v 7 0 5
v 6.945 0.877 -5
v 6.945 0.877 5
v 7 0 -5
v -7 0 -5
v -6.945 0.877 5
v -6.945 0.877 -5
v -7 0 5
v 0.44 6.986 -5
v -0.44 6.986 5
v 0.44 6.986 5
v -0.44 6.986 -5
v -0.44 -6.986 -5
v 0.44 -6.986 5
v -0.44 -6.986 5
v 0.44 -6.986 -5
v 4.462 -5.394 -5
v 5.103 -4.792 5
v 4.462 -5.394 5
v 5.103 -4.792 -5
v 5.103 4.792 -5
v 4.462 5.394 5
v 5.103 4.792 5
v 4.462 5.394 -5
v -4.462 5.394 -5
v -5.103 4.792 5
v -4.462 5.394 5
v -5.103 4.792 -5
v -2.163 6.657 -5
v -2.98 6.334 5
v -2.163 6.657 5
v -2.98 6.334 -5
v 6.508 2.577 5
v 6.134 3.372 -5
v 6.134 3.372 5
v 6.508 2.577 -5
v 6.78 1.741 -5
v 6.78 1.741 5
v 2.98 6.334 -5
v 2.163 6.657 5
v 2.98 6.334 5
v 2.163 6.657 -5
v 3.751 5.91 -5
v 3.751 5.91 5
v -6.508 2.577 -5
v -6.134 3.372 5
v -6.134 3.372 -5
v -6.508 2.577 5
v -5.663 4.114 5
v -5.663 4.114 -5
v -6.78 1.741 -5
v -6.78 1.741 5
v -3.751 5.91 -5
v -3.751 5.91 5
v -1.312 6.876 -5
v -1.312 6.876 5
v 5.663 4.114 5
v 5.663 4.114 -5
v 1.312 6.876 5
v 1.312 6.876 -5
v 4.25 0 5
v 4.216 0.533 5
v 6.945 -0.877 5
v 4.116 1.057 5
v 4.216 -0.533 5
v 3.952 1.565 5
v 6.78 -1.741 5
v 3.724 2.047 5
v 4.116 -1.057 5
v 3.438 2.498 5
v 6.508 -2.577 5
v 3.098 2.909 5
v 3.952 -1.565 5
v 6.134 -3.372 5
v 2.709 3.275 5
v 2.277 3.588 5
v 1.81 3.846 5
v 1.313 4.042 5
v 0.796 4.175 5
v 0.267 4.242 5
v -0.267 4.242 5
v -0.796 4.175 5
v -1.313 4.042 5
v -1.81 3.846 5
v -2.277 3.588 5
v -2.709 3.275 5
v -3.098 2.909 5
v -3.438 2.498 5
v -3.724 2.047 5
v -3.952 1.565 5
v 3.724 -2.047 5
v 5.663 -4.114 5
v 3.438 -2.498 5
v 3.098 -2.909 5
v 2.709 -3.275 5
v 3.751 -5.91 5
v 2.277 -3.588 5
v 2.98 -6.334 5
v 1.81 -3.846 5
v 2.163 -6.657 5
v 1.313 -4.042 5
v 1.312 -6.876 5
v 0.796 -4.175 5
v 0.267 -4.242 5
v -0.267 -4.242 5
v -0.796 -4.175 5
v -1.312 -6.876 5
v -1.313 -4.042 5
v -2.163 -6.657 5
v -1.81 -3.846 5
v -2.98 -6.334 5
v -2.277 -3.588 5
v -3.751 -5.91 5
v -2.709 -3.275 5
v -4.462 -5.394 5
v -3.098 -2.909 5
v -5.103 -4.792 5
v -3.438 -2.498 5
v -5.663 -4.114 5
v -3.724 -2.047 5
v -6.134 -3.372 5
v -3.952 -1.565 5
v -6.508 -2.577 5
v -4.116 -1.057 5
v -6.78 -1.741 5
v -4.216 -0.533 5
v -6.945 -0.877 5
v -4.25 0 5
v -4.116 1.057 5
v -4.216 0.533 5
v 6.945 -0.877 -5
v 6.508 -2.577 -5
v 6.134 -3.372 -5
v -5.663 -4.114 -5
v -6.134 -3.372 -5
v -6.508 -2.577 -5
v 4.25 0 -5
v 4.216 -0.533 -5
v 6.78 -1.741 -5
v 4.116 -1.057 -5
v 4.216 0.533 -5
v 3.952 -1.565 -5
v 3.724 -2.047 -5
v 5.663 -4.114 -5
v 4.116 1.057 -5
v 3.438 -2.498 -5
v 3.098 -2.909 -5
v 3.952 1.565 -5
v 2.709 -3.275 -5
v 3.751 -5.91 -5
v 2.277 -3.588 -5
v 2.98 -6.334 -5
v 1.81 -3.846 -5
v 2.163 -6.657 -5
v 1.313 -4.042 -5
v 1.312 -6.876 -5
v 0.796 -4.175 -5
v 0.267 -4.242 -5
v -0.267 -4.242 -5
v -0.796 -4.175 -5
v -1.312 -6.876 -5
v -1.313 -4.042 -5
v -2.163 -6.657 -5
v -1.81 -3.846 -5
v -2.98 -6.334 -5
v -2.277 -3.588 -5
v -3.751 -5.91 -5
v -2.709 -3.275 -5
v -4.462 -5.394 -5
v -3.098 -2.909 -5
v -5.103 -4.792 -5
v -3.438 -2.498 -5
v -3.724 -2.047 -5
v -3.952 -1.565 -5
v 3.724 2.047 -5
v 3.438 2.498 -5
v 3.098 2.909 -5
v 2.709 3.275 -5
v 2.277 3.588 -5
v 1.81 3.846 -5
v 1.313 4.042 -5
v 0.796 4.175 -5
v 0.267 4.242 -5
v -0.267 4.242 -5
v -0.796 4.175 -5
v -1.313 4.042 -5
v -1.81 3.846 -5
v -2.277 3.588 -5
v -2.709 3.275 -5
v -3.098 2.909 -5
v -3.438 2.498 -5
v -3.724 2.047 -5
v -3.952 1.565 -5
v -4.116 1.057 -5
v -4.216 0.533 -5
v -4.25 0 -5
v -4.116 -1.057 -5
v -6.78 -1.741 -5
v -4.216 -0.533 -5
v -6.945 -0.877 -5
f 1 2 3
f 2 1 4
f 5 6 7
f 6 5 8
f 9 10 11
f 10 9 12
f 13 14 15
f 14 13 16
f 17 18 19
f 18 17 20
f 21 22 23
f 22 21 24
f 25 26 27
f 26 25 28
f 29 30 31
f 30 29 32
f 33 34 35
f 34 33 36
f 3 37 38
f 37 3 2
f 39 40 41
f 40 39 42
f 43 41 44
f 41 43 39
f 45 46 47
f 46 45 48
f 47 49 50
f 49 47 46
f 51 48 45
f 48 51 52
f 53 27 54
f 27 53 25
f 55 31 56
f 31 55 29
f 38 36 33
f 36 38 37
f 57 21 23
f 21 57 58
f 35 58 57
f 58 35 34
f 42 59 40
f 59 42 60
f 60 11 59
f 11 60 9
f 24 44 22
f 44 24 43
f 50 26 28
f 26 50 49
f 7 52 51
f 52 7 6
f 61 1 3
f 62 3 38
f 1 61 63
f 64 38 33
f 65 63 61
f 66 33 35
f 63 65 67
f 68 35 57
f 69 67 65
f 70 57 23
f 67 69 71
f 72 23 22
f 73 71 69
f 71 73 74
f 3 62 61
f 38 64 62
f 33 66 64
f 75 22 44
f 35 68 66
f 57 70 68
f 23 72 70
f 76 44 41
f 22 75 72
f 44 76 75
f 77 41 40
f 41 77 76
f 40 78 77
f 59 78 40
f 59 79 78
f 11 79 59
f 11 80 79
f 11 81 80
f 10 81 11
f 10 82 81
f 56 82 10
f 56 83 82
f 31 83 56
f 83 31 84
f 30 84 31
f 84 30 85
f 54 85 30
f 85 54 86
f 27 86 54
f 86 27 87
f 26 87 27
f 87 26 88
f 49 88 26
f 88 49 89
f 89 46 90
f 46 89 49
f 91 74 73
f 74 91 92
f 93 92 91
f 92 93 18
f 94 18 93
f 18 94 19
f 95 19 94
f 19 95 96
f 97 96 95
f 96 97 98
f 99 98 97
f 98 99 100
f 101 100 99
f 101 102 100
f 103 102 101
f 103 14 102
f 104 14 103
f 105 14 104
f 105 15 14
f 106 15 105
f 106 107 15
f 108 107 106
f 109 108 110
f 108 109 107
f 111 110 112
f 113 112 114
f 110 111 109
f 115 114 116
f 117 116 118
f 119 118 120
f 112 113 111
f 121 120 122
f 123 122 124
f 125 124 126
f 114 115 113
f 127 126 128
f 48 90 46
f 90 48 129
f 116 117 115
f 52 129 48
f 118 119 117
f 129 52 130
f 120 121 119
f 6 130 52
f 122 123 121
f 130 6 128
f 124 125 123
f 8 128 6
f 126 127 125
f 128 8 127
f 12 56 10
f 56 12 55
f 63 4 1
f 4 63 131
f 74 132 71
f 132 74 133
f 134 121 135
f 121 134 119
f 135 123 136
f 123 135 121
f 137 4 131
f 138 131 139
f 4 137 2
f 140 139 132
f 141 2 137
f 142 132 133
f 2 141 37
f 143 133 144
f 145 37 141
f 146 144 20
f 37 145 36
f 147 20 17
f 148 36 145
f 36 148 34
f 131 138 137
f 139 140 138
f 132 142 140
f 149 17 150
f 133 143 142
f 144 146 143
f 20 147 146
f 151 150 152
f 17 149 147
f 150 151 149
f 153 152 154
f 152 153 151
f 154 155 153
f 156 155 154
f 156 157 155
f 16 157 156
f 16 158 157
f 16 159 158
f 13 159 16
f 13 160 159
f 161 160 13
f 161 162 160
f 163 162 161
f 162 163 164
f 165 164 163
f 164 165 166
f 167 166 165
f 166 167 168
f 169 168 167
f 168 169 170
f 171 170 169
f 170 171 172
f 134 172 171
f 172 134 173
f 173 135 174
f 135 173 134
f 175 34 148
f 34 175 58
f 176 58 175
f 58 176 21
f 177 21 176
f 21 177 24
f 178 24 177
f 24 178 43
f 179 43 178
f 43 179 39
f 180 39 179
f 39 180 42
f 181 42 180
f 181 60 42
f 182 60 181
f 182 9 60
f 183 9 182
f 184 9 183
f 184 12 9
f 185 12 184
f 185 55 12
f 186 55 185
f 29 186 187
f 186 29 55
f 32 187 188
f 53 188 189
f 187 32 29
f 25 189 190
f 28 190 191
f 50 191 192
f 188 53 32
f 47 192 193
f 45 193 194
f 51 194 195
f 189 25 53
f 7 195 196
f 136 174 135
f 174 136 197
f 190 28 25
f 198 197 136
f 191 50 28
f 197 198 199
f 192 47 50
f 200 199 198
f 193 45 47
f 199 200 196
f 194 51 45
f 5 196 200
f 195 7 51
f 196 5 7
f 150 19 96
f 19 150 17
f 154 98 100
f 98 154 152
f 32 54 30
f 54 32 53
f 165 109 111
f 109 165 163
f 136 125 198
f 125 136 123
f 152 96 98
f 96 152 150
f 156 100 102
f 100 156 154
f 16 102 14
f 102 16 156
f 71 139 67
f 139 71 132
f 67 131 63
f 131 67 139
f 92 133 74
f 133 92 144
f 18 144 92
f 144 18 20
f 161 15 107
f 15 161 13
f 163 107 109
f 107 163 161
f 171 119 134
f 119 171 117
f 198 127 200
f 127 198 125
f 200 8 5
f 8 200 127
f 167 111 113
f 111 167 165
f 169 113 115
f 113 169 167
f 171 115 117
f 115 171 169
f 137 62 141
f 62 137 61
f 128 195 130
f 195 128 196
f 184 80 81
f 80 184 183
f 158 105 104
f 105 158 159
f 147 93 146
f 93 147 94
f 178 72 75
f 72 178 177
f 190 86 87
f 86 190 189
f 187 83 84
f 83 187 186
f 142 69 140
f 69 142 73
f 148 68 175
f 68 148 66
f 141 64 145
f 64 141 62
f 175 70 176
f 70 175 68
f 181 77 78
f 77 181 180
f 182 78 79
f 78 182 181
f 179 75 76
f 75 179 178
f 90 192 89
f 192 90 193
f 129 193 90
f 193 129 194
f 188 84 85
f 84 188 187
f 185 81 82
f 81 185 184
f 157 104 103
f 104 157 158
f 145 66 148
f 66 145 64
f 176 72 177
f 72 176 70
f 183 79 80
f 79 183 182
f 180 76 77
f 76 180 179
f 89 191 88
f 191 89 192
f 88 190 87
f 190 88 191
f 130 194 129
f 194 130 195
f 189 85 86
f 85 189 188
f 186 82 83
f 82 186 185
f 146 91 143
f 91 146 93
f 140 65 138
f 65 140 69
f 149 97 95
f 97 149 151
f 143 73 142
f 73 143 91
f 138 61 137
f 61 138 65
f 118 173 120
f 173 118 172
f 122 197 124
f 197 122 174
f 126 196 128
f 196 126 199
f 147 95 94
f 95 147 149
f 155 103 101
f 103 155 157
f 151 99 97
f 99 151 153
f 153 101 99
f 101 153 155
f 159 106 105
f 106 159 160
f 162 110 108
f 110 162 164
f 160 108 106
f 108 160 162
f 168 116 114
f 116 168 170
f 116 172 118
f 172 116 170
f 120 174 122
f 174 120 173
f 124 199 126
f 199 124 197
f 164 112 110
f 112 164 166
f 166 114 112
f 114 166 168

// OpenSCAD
$fn = 50;


difference() {
	union() {
		translate(v = [0, 0, -5.0000000000]) {
			cylinder(h = 10, r = 7.0000000000);
		}
	}
	union() {
		translate(v = [0, 0, -100.0000000000]) {
			cylinder(h = 200, r = 4.2500000000);
		}
	}
}
